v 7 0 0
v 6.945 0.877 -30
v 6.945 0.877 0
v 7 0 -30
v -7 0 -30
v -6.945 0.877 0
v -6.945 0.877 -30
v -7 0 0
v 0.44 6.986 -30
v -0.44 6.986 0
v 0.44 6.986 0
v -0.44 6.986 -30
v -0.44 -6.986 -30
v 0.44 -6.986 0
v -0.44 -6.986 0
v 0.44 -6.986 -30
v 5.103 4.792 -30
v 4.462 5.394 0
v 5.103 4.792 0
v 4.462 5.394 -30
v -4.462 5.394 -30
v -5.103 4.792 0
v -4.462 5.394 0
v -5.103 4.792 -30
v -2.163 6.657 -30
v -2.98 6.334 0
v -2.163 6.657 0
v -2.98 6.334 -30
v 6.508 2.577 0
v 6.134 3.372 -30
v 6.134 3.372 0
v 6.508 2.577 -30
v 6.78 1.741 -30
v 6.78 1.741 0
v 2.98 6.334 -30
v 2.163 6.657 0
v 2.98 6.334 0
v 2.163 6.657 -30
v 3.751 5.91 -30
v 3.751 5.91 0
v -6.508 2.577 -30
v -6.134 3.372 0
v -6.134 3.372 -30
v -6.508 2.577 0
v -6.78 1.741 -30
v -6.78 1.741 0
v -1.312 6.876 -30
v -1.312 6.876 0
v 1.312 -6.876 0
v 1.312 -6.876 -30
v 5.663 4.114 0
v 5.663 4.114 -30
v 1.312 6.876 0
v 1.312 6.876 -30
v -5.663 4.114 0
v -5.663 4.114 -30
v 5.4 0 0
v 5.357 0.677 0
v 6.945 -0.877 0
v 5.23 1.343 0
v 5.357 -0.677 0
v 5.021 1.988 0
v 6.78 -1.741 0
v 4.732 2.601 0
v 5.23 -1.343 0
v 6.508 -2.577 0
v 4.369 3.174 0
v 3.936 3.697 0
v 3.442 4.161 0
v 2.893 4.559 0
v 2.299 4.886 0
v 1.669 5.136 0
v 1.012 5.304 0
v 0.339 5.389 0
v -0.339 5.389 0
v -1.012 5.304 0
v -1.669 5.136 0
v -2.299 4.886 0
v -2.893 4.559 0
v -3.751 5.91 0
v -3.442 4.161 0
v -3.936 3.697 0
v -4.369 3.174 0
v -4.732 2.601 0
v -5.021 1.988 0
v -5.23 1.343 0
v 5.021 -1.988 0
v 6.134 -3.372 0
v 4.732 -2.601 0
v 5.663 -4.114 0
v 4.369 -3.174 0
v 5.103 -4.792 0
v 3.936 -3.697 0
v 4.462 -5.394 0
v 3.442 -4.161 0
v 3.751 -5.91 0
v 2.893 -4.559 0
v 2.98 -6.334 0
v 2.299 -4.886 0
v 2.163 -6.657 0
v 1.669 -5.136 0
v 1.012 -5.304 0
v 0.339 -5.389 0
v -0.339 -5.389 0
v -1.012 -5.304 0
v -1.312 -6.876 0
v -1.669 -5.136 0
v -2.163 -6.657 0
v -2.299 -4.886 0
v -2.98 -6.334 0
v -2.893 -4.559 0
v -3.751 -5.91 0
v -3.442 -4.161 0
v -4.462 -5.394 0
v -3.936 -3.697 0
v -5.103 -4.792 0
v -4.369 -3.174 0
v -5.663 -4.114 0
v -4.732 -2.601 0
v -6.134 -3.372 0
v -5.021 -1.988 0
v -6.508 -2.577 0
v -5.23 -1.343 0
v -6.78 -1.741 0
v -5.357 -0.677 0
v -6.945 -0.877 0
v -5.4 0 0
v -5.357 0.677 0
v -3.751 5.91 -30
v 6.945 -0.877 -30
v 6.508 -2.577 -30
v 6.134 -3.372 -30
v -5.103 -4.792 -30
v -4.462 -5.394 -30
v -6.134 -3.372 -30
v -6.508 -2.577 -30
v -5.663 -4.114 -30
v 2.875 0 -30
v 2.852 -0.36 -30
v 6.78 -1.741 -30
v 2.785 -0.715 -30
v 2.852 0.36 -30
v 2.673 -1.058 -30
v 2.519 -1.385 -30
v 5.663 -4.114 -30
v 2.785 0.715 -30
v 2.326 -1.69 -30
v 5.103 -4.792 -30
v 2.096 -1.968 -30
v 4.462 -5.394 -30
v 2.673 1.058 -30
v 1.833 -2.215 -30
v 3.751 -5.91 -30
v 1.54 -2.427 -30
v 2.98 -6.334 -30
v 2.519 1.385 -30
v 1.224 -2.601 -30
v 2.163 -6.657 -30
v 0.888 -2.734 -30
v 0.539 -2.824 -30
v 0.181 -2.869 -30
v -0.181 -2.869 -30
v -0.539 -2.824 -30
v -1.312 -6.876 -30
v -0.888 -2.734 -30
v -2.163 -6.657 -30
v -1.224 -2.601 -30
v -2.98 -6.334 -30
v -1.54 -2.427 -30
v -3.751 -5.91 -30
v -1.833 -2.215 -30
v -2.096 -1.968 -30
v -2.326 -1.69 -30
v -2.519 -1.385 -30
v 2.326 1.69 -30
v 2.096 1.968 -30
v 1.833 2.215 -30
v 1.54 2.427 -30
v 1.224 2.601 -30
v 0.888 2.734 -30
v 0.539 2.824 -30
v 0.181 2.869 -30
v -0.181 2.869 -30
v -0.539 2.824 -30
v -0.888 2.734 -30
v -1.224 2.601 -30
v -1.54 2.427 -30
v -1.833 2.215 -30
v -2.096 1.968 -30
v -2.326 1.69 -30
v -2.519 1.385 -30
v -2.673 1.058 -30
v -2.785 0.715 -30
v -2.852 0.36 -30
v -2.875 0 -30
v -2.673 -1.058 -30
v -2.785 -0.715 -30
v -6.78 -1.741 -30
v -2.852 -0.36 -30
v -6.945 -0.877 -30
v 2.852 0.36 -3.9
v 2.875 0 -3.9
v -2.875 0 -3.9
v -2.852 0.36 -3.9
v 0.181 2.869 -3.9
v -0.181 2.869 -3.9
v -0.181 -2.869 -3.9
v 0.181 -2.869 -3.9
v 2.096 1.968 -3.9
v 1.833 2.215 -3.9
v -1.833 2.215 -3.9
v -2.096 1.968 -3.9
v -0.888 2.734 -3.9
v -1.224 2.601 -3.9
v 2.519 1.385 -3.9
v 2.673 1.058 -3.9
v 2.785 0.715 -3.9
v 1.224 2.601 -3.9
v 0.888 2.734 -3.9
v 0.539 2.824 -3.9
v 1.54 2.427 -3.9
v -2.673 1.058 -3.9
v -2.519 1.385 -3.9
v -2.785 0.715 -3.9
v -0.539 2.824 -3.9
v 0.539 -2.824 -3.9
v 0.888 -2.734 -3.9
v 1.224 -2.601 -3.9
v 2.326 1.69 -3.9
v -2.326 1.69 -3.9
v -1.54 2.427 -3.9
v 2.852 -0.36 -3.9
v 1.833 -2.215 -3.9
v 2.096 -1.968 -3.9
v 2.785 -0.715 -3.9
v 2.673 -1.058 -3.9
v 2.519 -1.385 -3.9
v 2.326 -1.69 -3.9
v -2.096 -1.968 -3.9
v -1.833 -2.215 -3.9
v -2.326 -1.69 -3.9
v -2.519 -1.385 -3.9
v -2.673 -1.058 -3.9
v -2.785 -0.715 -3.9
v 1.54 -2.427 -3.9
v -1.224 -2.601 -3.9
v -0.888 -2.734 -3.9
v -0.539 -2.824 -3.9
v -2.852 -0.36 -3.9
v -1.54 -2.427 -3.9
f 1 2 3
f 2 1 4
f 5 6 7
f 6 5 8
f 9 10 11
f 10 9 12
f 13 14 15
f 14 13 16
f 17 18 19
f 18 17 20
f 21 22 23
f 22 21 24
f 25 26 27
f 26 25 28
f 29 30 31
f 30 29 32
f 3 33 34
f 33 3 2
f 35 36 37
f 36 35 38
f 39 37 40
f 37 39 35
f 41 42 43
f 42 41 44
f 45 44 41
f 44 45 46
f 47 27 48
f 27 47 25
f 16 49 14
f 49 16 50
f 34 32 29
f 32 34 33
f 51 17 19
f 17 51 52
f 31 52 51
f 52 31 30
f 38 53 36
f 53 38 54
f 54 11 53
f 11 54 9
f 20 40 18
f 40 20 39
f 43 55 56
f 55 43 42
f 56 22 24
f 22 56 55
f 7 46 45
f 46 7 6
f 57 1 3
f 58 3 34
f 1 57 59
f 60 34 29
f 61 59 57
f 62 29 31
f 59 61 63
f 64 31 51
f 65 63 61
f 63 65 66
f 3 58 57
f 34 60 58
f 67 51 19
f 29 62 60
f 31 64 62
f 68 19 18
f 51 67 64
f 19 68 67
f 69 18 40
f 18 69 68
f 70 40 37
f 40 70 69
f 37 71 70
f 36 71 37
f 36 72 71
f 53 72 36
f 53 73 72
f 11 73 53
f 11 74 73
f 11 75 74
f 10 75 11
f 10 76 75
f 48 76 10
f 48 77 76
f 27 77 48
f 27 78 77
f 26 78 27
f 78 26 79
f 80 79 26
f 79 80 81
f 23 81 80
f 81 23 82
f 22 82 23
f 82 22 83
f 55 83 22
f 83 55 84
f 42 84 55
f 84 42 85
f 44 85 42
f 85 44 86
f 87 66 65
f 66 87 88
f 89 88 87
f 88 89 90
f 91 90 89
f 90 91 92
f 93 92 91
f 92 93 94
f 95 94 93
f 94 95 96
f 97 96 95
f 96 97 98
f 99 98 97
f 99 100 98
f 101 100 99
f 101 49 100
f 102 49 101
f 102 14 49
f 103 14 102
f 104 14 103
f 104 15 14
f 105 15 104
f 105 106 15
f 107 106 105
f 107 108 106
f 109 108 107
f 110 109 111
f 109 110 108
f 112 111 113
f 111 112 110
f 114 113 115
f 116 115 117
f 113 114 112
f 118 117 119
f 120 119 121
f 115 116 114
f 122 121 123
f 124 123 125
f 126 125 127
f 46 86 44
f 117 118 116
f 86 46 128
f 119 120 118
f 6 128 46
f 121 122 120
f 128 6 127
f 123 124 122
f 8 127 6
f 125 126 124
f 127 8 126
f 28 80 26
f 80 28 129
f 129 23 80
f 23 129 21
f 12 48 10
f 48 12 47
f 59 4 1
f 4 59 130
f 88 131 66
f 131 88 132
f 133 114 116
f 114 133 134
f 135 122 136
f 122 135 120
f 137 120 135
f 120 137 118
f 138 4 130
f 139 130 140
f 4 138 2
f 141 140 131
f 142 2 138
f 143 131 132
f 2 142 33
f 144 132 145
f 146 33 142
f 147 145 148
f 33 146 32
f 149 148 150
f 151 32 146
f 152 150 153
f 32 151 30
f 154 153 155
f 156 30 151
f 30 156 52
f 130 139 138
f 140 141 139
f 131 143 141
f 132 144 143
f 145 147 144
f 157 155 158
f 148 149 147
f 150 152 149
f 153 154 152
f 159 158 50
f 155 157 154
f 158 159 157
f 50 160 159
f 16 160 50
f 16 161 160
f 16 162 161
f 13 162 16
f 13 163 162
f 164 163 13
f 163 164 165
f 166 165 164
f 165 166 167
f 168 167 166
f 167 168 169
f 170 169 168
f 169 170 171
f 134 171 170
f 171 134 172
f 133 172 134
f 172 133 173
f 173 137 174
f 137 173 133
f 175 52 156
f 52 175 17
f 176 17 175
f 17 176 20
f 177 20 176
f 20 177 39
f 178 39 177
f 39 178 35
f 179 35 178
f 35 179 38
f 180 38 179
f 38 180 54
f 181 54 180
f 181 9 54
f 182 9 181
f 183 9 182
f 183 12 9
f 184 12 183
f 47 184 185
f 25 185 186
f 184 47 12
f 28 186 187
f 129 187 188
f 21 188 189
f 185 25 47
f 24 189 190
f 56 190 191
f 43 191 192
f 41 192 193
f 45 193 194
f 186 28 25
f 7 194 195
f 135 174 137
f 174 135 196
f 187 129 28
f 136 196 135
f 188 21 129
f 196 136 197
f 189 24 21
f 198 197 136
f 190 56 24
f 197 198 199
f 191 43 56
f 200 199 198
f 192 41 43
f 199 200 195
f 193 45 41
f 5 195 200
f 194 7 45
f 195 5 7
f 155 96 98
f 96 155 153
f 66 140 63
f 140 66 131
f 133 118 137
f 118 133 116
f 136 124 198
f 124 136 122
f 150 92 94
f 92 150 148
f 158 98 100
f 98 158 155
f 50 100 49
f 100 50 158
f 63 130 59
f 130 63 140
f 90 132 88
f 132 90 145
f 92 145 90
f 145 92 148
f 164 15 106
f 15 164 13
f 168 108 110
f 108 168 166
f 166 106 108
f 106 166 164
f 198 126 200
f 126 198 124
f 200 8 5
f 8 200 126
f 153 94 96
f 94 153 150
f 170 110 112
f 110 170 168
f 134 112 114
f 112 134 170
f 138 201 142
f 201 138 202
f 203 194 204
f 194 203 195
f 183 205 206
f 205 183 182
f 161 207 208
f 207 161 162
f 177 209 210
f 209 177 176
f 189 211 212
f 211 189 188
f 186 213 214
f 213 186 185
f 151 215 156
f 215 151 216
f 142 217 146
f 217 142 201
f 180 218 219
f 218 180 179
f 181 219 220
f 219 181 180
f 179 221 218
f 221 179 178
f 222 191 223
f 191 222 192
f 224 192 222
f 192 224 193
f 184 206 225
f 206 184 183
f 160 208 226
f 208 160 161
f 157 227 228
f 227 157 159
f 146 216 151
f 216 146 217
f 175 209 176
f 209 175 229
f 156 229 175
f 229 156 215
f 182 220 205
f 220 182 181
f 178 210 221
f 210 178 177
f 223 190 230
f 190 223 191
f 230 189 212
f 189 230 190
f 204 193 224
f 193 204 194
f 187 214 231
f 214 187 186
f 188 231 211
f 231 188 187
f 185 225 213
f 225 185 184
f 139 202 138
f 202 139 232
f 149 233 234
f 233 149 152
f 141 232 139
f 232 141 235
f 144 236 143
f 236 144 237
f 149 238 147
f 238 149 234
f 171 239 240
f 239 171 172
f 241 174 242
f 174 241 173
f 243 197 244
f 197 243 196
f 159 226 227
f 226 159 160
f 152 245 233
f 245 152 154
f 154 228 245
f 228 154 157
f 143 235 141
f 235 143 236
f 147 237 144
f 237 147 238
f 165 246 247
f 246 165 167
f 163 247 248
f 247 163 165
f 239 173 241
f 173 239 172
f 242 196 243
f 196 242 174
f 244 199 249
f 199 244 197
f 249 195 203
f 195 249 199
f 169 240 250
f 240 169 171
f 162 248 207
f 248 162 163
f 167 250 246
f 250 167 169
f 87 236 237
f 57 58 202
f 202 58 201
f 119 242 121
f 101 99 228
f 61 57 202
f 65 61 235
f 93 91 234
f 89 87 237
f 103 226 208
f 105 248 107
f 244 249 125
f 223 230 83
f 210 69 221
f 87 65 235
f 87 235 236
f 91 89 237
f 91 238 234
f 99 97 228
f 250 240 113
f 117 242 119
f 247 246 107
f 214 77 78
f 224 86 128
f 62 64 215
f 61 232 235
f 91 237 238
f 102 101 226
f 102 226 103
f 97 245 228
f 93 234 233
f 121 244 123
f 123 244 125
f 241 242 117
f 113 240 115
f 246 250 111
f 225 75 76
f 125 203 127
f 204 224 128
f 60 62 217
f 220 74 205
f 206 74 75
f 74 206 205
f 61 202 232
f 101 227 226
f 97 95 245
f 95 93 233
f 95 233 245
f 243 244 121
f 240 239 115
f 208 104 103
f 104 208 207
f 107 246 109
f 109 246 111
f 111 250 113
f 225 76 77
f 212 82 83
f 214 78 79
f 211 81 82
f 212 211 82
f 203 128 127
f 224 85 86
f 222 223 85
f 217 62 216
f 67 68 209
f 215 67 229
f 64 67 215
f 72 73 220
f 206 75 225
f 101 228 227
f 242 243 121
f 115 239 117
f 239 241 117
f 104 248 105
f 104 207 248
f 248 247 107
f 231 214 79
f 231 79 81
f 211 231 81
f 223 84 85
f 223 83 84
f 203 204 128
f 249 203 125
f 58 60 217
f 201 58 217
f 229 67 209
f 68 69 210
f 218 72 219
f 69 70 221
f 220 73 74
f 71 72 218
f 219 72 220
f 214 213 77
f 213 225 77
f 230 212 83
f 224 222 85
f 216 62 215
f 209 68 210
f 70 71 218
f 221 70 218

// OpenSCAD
$fn = 50;

difference() {
	union() {
		translate(v = [0, 0, -30.0]) {
			cylinder(h = 30, r = 7.0);
		}
		#translate(v = [0, 0, -33.0]) {
			cylinder(h = 33, r = 2.875);
		}
	}
	union() {
		translate(v = [0, 0, 0]) {
			rotate(a = [0, 0, 0]) {
				difference() {
					union() {
						translate(v = [0, 0, -33.0]) {
							cylinder(h = 33, r = 2.6);
						}
						translate(v = [0, 0, -3.9]) {
							cylinder(h = 3.9, r1 = 2.875, r2 = 5.4);
						}
						translate(v = [0, 0, -33.0]) {
							cylinder(h = 33, r = 2.875);
						}
						translate(v = [0, 0, -33.0]) {
							cylinder(h = 33, r = 2.6);
						}
					}
					union();
				}
			}
		}
	}
}
